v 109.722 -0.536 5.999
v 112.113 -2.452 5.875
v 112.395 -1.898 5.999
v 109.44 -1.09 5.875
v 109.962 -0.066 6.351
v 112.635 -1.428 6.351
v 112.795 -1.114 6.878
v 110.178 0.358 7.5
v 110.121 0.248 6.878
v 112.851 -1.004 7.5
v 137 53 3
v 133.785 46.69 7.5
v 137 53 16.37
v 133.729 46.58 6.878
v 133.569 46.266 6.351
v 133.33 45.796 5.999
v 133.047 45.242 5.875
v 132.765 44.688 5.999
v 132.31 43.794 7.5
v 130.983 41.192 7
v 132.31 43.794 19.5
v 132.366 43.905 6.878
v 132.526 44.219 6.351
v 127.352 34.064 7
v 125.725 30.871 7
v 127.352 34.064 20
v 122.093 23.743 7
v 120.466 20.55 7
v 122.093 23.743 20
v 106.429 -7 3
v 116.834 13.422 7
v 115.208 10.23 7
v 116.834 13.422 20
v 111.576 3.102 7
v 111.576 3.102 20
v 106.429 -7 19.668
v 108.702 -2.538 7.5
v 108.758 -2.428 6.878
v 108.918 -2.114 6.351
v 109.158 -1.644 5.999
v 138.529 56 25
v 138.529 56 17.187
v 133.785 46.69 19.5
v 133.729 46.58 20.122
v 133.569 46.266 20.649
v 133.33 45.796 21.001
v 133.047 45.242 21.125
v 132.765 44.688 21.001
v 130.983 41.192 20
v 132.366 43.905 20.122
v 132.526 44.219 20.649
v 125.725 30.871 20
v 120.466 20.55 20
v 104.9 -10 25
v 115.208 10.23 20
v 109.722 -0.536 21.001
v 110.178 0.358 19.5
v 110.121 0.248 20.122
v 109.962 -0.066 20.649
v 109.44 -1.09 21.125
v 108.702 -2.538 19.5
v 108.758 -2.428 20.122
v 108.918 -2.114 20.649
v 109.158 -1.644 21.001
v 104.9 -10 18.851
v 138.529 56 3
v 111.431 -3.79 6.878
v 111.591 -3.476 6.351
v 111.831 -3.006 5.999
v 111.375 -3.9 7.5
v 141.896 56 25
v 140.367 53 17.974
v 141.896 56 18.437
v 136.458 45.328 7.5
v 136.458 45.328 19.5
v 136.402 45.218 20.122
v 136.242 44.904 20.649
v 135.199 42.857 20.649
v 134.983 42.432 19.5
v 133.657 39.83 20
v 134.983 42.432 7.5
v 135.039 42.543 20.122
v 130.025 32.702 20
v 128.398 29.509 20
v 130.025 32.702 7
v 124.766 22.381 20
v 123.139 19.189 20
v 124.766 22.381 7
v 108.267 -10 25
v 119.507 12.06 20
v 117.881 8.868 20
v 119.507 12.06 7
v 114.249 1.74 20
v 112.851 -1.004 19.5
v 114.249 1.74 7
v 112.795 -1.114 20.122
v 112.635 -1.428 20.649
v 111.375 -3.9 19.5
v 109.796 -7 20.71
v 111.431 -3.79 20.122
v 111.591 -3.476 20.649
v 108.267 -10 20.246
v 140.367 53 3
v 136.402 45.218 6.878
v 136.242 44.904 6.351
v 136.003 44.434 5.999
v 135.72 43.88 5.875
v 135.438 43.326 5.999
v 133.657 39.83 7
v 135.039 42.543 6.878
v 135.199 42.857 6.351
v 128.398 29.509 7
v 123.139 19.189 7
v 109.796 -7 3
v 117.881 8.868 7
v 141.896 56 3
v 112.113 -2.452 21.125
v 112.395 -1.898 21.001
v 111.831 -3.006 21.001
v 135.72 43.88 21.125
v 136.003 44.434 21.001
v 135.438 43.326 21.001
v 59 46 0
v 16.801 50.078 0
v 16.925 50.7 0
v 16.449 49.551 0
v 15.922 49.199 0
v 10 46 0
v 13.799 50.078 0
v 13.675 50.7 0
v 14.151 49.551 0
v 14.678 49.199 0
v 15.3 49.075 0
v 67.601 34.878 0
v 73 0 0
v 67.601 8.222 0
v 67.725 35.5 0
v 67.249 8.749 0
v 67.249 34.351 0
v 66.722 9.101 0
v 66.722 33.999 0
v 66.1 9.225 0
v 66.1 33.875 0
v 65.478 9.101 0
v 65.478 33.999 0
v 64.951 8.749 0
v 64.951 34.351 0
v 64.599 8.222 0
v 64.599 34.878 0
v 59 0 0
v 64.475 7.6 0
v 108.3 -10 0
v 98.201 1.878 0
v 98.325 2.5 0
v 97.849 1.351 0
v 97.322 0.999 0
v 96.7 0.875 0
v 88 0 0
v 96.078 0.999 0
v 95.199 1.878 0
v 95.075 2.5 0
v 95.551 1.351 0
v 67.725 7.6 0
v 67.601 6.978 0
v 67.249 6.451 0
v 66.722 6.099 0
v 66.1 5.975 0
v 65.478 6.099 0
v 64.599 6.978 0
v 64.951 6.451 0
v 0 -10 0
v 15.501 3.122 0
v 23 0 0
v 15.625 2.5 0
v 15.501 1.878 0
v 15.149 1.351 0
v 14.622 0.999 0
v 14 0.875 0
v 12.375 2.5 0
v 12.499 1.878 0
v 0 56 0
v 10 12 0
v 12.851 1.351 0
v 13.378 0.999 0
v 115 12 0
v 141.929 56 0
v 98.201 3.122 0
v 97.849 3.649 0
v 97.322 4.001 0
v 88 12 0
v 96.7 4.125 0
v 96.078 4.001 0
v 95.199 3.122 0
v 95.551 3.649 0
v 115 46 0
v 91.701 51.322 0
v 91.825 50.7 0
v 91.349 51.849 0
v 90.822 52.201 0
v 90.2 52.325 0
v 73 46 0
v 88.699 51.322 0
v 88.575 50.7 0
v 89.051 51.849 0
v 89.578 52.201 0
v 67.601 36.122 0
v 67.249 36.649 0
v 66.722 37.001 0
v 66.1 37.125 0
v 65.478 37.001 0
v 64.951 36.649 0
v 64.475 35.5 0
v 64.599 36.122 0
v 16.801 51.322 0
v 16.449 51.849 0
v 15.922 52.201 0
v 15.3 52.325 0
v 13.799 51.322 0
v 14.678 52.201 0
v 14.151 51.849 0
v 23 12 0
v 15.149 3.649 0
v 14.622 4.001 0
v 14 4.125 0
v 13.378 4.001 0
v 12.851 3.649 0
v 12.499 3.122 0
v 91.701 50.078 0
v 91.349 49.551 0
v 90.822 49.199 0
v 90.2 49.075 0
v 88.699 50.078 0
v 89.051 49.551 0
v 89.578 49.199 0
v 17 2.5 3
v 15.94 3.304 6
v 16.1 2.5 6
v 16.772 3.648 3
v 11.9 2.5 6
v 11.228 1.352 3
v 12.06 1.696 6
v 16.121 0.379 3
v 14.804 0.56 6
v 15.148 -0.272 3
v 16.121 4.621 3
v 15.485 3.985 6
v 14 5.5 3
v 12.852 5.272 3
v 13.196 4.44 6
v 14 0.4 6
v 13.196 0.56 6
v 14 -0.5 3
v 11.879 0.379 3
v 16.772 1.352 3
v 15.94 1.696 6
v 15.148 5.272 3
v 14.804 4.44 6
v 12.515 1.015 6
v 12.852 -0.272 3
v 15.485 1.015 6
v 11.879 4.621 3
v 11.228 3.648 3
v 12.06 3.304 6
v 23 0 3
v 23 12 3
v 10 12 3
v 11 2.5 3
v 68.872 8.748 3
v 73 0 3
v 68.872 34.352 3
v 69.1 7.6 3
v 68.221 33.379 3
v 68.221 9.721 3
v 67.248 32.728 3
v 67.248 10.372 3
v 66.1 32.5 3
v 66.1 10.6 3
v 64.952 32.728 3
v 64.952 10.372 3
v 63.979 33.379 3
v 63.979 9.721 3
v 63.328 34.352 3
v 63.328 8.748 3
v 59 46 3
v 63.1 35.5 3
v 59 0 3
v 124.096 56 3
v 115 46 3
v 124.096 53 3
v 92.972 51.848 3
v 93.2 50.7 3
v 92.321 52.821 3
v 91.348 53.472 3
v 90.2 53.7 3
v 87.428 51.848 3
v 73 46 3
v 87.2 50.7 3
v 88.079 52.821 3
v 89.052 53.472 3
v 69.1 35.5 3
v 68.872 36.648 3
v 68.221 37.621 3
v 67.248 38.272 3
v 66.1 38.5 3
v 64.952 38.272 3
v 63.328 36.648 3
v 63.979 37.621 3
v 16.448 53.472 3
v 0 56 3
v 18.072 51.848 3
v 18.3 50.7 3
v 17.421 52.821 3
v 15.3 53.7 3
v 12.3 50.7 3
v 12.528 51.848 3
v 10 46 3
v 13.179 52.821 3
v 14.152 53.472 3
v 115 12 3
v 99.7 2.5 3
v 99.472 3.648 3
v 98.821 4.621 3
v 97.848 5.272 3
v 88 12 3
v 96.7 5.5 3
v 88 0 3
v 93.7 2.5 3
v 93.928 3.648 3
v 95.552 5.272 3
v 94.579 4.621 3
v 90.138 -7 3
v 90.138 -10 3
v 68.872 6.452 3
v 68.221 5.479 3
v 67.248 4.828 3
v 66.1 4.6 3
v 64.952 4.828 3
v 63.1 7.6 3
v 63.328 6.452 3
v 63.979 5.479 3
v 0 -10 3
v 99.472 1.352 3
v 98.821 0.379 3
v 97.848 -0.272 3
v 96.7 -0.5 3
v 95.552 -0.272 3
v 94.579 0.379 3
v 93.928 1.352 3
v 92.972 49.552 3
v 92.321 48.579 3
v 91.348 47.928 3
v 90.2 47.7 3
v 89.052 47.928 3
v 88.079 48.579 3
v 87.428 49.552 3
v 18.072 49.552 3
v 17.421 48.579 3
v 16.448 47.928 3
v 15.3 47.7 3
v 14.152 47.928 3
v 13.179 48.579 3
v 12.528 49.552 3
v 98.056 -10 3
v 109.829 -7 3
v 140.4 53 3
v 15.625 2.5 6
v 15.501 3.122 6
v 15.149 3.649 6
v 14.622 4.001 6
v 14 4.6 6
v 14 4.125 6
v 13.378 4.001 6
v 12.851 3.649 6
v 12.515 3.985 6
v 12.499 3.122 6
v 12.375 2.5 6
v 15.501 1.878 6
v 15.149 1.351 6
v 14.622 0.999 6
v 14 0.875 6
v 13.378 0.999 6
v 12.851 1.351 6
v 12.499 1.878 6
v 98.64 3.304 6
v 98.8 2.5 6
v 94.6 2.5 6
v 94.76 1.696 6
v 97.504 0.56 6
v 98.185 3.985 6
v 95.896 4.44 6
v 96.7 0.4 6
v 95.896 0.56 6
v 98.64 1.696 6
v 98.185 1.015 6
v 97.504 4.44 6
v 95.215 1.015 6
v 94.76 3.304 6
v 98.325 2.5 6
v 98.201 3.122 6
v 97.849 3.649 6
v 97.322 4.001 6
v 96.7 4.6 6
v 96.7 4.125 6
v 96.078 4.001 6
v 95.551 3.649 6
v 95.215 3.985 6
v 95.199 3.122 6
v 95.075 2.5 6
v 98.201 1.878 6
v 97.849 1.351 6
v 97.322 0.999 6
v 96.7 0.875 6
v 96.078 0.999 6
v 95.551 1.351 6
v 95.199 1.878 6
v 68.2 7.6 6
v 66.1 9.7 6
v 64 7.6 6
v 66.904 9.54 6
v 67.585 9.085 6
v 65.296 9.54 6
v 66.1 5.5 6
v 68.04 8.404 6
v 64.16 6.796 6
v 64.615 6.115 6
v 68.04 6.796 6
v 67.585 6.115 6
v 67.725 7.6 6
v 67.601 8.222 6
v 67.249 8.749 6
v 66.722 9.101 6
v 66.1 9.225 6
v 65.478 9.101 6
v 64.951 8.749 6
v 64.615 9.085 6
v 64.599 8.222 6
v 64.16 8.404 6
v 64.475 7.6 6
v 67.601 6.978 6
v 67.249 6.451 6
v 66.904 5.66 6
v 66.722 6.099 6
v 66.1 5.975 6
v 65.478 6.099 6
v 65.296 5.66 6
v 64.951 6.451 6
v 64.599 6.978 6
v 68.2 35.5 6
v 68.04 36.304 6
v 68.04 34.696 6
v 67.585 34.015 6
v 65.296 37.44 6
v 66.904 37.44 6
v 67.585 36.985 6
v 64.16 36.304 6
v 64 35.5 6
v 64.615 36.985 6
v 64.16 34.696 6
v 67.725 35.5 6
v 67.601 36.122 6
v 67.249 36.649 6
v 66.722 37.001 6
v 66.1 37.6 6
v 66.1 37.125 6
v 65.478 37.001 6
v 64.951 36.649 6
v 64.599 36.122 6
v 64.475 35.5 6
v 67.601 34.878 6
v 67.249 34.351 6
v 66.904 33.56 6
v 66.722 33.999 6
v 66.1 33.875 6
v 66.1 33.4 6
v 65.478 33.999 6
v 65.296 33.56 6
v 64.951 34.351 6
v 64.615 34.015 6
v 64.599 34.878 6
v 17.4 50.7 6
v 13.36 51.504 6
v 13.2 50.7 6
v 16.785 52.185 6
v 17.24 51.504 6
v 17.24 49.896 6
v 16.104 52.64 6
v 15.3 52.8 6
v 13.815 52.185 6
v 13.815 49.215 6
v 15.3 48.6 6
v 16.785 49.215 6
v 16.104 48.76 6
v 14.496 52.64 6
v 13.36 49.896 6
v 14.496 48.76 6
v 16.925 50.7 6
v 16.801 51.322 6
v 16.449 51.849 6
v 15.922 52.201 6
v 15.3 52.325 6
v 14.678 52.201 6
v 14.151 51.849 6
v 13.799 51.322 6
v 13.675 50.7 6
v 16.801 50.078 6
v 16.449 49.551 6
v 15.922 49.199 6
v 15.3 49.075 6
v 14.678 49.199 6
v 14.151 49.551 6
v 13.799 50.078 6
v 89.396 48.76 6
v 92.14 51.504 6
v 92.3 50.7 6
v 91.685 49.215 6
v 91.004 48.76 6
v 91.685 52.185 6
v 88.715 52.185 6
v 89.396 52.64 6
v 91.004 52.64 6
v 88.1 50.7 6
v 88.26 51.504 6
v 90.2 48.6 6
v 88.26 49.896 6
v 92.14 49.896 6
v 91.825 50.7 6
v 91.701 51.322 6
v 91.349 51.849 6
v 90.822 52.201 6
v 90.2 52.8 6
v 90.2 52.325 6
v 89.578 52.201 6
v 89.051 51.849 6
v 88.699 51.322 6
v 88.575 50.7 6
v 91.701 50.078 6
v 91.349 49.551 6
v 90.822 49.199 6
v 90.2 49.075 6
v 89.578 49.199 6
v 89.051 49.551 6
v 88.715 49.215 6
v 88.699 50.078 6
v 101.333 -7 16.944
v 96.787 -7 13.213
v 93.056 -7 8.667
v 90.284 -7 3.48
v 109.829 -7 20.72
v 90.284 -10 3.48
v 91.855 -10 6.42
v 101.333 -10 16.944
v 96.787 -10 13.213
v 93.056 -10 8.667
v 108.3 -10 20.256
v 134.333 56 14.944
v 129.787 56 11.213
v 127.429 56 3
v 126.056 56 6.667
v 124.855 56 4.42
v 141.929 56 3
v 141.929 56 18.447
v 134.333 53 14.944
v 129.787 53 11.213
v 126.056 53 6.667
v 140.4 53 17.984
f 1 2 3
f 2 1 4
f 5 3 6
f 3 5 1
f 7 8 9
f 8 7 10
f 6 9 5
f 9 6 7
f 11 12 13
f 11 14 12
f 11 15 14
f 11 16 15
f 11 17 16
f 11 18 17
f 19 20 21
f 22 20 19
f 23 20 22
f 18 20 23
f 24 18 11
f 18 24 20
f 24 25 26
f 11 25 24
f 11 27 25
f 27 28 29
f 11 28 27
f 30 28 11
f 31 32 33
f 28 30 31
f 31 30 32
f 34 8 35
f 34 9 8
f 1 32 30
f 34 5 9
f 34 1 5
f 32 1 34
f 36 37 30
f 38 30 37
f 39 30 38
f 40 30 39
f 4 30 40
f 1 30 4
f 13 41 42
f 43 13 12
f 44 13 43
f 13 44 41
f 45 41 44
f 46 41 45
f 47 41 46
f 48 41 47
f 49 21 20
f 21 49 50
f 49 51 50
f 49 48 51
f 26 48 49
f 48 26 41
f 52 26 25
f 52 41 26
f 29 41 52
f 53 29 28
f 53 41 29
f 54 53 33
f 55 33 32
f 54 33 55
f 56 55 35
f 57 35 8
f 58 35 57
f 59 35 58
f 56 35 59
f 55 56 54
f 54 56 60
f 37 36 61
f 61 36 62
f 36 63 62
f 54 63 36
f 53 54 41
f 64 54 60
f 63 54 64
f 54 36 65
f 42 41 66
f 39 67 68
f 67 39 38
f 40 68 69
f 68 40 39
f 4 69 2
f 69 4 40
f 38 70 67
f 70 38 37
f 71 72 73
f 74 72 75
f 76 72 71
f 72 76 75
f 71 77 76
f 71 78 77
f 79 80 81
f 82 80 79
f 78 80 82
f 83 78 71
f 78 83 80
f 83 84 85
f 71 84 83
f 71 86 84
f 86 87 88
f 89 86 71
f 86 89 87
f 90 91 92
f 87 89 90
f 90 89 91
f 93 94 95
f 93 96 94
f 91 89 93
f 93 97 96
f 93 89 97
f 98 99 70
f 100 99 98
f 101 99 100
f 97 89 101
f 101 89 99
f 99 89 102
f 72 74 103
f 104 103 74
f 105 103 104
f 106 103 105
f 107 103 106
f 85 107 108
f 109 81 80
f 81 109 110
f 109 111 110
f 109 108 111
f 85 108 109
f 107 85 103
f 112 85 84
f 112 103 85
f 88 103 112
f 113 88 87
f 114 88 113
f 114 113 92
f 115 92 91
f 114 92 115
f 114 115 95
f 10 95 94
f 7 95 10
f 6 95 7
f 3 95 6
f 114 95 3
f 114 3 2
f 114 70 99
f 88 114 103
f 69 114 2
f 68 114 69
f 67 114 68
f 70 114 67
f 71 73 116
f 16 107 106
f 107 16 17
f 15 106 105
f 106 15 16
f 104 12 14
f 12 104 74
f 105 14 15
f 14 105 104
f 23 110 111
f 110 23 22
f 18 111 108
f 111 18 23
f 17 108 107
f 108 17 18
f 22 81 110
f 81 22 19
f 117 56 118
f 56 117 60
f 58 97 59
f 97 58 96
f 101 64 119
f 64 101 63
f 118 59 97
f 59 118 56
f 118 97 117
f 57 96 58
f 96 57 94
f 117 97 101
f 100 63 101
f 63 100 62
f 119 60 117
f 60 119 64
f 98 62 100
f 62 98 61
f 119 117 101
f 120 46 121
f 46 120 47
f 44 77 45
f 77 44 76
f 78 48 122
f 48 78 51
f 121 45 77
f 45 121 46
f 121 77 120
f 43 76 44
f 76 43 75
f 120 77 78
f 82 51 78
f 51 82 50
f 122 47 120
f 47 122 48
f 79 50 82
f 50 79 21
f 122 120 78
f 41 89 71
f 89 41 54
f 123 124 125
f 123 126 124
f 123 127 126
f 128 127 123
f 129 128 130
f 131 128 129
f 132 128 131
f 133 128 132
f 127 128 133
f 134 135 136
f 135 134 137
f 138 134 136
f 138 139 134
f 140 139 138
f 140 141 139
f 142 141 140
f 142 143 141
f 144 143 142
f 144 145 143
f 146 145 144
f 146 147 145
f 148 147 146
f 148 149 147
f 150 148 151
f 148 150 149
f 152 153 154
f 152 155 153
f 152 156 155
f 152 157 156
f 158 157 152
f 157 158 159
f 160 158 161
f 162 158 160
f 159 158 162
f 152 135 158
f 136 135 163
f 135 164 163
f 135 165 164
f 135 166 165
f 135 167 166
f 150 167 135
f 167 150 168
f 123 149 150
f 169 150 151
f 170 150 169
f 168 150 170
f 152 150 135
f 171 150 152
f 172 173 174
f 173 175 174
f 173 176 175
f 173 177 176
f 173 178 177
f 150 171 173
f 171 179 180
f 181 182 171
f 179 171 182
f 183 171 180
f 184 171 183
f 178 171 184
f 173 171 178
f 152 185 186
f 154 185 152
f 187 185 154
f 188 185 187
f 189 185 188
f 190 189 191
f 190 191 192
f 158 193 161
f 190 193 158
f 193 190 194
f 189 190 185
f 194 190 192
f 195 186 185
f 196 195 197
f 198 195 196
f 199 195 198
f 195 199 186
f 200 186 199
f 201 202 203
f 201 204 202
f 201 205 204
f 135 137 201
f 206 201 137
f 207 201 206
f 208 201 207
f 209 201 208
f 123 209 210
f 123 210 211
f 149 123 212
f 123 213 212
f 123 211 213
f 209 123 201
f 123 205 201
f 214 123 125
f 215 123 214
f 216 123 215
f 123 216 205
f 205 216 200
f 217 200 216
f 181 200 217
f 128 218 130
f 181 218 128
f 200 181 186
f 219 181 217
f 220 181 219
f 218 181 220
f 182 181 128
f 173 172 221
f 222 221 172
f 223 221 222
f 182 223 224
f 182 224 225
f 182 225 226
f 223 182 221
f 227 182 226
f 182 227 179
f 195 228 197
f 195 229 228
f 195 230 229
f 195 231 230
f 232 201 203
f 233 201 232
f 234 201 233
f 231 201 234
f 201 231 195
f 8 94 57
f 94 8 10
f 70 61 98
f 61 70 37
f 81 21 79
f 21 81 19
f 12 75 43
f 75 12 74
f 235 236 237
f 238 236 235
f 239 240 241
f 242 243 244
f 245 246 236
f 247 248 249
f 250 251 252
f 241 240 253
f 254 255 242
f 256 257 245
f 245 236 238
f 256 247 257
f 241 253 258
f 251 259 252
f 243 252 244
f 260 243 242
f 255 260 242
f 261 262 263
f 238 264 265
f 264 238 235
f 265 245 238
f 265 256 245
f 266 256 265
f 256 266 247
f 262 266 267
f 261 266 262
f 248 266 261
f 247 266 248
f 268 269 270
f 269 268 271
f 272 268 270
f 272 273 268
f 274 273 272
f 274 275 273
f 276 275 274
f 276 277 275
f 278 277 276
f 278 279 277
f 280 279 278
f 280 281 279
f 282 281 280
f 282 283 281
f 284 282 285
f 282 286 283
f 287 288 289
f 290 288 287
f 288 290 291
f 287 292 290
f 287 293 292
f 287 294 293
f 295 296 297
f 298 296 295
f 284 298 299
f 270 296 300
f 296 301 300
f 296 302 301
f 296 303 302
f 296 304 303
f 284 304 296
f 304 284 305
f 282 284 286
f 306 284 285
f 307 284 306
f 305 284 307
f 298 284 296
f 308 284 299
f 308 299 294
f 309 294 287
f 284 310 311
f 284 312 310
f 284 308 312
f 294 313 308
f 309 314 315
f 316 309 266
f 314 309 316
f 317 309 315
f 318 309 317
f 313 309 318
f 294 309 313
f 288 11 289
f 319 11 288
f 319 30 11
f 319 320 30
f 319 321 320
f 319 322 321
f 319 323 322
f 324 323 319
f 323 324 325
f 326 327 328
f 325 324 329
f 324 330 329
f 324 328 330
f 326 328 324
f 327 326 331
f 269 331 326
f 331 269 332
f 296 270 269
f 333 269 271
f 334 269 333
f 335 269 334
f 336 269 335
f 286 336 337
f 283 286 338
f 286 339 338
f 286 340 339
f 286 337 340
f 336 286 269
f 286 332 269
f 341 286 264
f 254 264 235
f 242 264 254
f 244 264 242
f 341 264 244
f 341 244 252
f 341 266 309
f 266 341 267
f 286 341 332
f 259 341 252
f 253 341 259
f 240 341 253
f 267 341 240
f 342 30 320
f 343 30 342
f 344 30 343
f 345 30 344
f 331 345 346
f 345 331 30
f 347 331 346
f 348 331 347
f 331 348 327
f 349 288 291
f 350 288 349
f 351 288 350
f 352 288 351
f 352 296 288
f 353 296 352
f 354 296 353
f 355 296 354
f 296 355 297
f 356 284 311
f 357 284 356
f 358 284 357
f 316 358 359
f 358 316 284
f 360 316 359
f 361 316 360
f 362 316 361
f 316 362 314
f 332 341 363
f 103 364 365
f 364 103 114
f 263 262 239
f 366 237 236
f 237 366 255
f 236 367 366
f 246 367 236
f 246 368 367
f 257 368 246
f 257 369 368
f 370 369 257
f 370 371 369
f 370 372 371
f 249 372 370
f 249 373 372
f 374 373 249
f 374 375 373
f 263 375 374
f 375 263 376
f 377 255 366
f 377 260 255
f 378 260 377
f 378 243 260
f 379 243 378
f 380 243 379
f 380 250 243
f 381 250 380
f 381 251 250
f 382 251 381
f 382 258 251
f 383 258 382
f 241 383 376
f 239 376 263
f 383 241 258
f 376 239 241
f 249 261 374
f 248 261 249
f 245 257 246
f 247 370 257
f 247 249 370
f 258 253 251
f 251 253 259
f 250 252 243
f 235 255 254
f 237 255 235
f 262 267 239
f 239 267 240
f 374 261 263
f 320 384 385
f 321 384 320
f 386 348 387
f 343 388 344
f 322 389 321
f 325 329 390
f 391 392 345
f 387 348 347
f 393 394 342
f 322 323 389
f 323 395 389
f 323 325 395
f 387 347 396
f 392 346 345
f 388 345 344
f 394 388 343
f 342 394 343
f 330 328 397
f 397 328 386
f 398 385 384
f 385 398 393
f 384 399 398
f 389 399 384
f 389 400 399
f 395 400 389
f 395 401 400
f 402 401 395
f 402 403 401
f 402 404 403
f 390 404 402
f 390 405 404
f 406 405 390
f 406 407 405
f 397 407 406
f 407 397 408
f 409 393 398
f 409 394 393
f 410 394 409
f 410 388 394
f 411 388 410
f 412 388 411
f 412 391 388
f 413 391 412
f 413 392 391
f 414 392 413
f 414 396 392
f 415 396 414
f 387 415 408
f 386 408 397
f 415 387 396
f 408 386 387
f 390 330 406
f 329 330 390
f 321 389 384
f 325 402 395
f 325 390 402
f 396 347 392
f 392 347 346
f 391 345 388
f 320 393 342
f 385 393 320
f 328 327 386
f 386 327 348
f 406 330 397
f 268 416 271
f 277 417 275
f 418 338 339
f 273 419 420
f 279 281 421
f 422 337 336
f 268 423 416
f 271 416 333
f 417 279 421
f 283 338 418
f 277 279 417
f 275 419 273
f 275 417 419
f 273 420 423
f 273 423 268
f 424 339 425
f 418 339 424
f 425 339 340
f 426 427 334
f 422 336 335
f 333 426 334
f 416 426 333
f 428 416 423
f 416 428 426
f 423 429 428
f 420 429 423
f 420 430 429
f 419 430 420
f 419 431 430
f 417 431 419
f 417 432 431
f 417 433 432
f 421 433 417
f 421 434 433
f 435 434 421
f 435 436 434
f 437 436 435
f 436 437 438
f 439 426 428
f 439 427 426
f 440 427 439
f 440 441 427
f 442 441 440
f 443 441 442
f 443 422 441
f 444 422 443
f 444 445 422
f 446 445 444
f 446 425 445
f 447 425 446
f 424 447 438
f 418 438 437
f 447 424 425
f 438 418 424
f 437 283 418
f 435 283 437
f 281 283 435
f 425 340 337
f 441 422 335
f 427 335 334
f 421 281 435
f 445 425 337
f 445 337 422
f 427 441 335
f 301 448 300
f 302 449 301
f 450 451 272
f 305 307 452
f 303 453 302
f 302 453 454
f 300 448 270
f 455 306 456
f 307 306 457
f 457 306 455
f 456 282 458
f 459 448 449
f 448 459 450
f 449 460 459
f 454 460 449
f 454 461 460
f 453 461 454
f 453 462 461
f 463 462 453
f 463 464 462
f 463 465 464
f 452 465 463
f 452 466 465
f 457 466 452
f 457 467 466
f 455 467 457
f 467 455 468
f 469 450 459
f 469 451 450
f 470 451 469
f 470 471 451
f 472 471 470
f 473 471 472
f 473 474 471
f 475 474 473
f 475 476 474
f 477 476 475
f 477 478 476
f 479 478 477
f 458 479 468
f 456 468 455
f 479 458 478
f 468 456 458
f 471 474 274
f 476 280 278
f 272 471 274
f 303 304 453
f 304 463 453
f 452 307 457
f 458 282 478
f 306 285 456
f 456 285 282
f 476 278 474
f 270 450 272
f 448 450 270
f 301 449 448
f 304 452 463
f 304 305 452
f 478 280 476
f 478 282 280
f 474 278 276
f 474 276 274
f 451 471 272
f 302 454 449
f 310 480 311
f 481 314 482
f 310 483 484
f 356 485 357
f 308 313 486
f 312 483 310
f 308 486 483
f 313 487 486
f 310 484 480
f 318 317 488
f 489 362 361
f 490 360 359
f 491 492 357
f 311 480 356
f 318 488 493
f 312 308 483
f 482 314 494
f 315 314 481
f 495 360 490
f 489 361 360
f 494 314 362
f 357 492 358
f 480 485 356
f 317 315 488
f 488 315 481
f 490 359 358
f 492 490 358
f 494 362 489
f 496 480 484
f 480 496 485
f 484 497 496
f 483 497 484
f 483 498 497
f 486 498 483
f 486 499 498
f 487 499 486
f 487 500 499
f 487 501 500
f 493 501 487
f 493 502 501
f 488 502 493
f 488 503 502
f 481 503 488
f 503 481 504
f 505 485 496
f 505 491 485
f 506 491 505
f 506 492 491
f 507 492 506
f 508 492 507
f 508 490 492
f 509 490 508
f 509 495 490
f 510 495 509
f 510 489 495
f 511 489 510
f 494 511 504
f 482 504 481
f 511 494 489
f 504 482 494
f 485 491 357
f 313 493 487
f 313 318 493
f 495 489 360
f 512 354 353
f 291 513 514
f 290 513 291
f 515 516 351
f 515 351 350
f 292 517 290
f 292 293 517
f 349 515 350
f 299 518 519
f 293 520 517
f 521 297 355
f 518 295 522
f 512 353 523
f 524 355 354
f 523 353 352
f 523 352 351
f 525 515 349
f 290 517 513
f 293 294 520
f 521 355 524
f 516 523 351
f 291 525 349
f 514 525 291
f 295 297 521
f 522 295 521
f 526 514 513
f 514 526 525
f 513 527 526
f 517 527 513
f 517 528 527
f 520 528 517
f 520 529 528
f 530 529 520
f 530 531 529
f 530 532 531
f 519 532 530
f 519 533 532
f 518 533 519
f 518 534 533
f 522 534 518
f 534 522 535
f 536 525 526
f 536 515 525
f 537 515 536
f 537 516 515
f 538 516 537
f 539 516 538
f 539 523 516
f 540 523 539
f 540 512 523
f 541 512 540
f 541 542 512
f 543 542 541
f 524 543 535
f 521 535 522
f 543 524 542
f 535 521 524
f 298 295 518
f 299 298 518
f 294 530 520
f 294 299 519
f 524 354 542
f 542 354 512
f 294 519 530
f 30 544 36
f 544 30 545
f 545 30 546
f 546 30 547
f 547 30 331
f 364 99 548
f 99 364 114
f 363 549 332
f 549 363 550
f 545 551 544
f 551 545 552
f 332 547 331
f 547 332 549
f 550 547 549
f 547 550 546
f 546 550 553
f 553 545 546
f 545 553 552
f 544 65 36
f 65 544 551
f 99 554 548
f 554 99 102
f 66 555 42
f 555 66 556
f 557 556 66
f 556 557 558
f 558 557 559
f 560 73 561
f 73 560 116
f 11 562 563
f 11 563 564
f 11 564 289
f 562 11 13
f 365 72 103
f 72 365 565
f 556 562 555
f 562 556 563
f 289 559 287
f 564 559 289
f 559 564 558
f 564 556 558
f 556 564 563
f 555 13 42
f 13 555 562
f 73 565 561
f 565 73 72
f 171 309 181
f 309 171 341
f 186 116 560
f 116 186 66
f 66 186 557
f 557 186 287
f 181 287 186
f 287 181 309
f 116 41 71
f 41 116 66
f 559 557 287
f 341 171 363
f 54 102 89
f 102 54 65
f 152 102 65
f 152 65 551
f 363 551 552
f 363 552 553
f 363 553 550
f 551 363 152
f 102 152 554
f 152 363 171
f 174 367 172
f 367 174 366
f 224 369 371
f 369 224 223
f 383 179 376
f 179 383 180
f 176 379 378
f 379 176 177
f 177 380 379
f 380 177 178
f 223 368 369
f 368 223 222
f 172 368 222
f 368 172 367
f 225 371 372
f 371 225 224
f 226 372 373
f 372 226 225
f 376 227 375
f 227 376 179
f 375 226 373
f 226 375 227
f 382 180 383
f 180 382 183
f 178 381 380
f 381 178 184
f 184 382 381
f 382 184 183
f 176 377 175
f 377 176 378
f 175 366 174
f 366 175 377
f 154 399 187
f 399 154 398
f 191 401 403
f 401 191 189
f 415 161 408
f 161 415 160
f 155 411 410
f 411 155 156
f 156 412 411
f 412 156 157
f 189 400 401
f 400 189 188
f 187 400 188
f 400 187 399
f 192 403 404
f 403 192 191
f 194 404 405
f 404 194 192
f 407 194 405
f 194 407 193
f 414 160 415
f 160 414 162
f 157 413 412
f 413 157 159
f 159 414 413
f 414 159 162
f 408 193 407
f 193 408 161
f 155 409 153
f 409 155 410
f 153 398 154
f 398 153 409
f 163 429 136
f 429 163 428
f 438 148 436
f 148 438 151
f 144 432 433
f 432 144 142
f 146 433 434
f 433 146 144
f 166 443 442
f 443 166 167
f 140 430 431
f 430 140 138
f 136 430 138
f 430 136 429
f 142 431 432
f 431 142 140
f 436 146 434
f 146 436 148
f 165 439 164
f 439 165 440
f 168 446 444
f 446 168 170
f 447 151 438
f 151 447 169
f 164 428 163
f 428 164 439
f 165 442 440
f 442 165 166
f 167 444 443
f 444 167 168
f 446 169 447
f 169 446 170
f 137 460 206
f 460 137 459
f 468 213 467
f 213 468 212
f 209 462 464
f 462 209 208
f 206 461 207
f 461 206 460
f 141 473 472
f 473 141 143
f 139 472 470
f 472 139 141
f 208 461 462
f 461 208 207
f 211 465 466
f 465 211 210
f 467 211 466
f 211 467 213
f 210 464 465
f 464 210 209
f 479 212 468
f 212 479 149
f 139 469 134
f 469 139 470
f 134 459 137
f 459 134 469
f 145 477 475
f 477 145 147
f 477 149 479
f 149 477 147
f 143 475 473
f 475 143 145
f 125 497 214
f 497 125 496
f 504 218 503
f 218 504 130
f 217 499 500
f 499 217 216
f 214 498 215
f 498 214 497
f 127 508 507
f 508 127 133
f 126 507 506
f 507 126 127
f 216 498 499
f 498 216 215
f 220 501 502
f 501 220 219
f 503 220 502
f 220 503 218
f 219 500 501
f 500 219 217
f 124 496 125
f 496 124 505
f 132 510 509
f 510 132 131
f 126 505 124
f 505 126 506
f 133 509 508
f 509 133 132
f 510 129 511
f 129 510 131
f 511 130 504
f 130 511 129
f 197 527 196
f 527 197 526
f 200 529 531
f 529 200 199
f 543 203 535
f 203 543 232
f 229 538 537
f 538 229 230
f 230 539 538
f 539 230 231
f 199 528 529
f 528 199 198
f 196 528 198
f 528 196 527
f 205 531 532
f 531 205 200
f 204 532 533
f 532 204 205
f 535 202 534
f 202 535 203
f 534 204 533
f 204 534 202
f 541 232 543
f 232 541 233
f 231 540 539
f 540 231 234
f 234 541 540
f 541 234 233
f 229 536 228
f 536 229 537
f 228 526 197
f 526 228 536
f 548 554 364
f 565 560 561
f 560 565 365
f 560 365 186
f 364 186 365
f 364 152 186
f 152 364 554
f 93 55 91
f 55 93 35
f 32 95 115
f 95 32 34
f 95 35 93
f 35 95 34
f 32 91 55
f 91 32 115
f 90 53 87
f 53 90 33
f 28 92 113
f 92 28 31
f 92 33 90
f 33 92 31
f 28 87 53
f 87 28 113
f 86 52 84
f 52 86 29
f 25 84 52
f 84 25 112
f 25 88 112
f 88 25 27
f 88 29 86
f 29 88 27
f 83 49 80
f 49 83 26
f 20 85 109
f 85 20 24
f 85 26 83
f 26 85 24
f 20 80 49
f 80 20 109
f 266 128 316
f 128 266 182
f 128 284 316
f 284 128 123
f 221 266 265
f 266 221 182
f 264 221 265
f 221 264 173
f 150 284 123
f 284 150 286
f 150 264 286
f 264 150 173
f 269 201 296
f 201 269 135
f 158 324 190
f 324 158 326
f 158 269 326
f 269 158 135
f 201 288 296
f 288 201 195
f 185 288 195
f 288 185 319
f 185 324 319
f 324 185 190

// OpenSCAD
// Kossel Mini mount for RAMPS 1.4 at bottom location
// Licence: CC BY-SA 3.0, http://creativecommons.org/licenses/by-sa/3.0/
// Author: Dominik Scholz <schlotzz@schlotzz.com> and contributors
// visit: http://www.schlotzz.com


// Increase this if your slicer or printer make holes too tight.
extra_radius = 0.2;


// Major diameter of metric 3mm thread.
m3_major = 2.85;
m3_radius = m3_major / 2 + extra_radius;
m3_wide_radius = m3_major / 2 + extra_radius + 0.2;




module ramps_mount()
{

	// define base plate
	base_plate = [102, 54, 3];
	base_plate_delta = [20, 20, 0];
	base_plate_offset = [10, 0, 0];

	// define mounting hole offsets
	base_hole_offsets = [
		[14, 2.5, 0],
		[96.7, 2.5, 0],
		[66.1, 7.6, 0],
		[66.1, 35.5, 0],
		[15.3, 50.7, 0],
		[90.2, 50.7, 0]
	];

	// define mounting plate
	mounting_plate = [3, base_plate[1] + base_plate_delta[1], 25];
	mounting_plate_offset = [base_plate[0] + base_plate_delta[0] - mounting_plate[0], 0, 0];

	// define mounting hole offsets
	mounting_hole_offsets = [
		[1.5, 0, 7.5],
		[1.5, base_plate[1] - 2, 7.5],
		[1.5, 0, 19.5],
		[1.5, base_plate[1] - 2, 19.5],
	];

	// define joint enforcement
	joint_enforcement_radius = 30;
	joint_enforcement_thickness = 3;
	joint_enforcement_offsets = [
		[base_plate[0] + base_plate_delta[0] - 4, -base_plate_delta[0] / 2, -8],
		[base_plate[0] + base_plate_delta[0] + 29, base_plate[1] - 8 + base_plate_delta[0] / 2 - joint_enforcement_thickness, -10],
	];

	// define domes
	dome_height = 3;
	dome_base_width = 6;
	dome_top_width = 4.2;

	// stepper cutout
	stepper_cutout_depth = 15;
	stepper_cutout_offset = [
		base_plate[0] + base_plate_delta[0] - joint_enforcement_radius - tan(30) * stepper_cutout_depth,
		base_plate[1] + base_plate_delta[1] / 2 - stepper_cutout_depth,
		0
	];

	difference()
	{
		
		union()
		{
			// base plate
			translate(base_plate_offset - base_plate_delta / 2)
				cube(base_plate + base_plate_delta+[32,-8,0], center = false);

			// mounting plate
			translate(base_plate_offset - base_plate_delta / 2 + mounting_plate_offset+[-14.1,0,0])
            rotate([0, 0, -27]) {
                difference() {
                  cube(mounting_plate+[0,10,0]);
                  union() {
                    for (a = mounting_hole_offsets)
			          translate(a+[0,10,0])
				        rotate([0, 90, 0])
					      cylinder(r = m3_radius, h = 3, center = true, $fn = 16);
                    };
                    translate([1.5 - m3_radius, 0 - m3_radius, 7.5]+[0,10,0]) cube([5, m3_radius*2, 12]);
                    translate([1.5 - m3_radius, (base_plate[1] - 2) - m3_radius, 7.5]+[0,10,0]) cube([5, m3_radius*2, 12]);
                };
            };

			// domes
			for (a = base_hole_offsets)
				translate(a + [0, 0, base_plate[2]])
					cylinder(r1 = dome_base_width / 2, r2 = dome_top_width / 2, h = dome_height, $fn = 16);
			
			// joint enforcement
			for (a = joint_enforcement_offsets)
				translate(a)
					rotate([90, 0, 180])
						intersection()
						{
							cube([joint_enforcement_radius, joint_enforcement_radius, joint_enforcement_thickness]);
							cylinder(r = joint_enforcement_radius, h = joint_enforcement_thickness, $fn = 32);
						}
		}

		// base holes
		for (a = base_hole_offsets)
			translate(a)
				cylinder(r = m3_radius, h = 50, center = true, $fn = 16);

		// mounting holes
		//for (a = mounting_hole_offsets)
		//	translate(a + mounting_plate_offset)
		//		rotate([0, 90, 0])
		//			cylinder(r = m3_radius, h = 3, center = true, $fn = 16);
        
		// cutout for stepper motor
		//translate(stepper_cutout_offset - [0, 0, 1])
		//	rotate([0, 0, 60])
		//		cube([stepper_cutout_depth * 2, stepper_cutout_depth * 2, base_plate[2] + 2]);
        
		translate([108.3, -10, 0])
			rotate([0, 0, -27])
				cube([50, 90, base_plate[2] + 50]);
        
		translate([100, 9, 7])
			rotate([0, 0, -27])
				cube([35, 8, 13]);
                
		translate([100, 22, 7])
			rotate([0, 0, -27])
				cube([35, 8, 13]);
                
		translate([100, 35, 7])
			rotate([0, 0, -27])
				cube([35, 8, 13]);
                
		translate([100, 48, 7])
			rotate([0, 0, -27])
				cube([35, 8, 13]);
        
        translate([0, -50, -50])
		  cube([200, 120, 50]);
        
        translate([0, -20, 0])
		  cube([200, 10, 50]);
          
        translate([0, 56, 0])
		  cube([200, 10, 50]);
        
        translate([10, 12, 0])
          cube([32, 34, 50]);
        
        translate([23, 0, 0])
          cube([36, 46, 50]);
          
        translate([73, 0, 0])
          cube([15, 46, 50]);
          
        translate([83, 12, 0])
          cube([32, 34, 50]);
	}
	

}

ramps_mount();
